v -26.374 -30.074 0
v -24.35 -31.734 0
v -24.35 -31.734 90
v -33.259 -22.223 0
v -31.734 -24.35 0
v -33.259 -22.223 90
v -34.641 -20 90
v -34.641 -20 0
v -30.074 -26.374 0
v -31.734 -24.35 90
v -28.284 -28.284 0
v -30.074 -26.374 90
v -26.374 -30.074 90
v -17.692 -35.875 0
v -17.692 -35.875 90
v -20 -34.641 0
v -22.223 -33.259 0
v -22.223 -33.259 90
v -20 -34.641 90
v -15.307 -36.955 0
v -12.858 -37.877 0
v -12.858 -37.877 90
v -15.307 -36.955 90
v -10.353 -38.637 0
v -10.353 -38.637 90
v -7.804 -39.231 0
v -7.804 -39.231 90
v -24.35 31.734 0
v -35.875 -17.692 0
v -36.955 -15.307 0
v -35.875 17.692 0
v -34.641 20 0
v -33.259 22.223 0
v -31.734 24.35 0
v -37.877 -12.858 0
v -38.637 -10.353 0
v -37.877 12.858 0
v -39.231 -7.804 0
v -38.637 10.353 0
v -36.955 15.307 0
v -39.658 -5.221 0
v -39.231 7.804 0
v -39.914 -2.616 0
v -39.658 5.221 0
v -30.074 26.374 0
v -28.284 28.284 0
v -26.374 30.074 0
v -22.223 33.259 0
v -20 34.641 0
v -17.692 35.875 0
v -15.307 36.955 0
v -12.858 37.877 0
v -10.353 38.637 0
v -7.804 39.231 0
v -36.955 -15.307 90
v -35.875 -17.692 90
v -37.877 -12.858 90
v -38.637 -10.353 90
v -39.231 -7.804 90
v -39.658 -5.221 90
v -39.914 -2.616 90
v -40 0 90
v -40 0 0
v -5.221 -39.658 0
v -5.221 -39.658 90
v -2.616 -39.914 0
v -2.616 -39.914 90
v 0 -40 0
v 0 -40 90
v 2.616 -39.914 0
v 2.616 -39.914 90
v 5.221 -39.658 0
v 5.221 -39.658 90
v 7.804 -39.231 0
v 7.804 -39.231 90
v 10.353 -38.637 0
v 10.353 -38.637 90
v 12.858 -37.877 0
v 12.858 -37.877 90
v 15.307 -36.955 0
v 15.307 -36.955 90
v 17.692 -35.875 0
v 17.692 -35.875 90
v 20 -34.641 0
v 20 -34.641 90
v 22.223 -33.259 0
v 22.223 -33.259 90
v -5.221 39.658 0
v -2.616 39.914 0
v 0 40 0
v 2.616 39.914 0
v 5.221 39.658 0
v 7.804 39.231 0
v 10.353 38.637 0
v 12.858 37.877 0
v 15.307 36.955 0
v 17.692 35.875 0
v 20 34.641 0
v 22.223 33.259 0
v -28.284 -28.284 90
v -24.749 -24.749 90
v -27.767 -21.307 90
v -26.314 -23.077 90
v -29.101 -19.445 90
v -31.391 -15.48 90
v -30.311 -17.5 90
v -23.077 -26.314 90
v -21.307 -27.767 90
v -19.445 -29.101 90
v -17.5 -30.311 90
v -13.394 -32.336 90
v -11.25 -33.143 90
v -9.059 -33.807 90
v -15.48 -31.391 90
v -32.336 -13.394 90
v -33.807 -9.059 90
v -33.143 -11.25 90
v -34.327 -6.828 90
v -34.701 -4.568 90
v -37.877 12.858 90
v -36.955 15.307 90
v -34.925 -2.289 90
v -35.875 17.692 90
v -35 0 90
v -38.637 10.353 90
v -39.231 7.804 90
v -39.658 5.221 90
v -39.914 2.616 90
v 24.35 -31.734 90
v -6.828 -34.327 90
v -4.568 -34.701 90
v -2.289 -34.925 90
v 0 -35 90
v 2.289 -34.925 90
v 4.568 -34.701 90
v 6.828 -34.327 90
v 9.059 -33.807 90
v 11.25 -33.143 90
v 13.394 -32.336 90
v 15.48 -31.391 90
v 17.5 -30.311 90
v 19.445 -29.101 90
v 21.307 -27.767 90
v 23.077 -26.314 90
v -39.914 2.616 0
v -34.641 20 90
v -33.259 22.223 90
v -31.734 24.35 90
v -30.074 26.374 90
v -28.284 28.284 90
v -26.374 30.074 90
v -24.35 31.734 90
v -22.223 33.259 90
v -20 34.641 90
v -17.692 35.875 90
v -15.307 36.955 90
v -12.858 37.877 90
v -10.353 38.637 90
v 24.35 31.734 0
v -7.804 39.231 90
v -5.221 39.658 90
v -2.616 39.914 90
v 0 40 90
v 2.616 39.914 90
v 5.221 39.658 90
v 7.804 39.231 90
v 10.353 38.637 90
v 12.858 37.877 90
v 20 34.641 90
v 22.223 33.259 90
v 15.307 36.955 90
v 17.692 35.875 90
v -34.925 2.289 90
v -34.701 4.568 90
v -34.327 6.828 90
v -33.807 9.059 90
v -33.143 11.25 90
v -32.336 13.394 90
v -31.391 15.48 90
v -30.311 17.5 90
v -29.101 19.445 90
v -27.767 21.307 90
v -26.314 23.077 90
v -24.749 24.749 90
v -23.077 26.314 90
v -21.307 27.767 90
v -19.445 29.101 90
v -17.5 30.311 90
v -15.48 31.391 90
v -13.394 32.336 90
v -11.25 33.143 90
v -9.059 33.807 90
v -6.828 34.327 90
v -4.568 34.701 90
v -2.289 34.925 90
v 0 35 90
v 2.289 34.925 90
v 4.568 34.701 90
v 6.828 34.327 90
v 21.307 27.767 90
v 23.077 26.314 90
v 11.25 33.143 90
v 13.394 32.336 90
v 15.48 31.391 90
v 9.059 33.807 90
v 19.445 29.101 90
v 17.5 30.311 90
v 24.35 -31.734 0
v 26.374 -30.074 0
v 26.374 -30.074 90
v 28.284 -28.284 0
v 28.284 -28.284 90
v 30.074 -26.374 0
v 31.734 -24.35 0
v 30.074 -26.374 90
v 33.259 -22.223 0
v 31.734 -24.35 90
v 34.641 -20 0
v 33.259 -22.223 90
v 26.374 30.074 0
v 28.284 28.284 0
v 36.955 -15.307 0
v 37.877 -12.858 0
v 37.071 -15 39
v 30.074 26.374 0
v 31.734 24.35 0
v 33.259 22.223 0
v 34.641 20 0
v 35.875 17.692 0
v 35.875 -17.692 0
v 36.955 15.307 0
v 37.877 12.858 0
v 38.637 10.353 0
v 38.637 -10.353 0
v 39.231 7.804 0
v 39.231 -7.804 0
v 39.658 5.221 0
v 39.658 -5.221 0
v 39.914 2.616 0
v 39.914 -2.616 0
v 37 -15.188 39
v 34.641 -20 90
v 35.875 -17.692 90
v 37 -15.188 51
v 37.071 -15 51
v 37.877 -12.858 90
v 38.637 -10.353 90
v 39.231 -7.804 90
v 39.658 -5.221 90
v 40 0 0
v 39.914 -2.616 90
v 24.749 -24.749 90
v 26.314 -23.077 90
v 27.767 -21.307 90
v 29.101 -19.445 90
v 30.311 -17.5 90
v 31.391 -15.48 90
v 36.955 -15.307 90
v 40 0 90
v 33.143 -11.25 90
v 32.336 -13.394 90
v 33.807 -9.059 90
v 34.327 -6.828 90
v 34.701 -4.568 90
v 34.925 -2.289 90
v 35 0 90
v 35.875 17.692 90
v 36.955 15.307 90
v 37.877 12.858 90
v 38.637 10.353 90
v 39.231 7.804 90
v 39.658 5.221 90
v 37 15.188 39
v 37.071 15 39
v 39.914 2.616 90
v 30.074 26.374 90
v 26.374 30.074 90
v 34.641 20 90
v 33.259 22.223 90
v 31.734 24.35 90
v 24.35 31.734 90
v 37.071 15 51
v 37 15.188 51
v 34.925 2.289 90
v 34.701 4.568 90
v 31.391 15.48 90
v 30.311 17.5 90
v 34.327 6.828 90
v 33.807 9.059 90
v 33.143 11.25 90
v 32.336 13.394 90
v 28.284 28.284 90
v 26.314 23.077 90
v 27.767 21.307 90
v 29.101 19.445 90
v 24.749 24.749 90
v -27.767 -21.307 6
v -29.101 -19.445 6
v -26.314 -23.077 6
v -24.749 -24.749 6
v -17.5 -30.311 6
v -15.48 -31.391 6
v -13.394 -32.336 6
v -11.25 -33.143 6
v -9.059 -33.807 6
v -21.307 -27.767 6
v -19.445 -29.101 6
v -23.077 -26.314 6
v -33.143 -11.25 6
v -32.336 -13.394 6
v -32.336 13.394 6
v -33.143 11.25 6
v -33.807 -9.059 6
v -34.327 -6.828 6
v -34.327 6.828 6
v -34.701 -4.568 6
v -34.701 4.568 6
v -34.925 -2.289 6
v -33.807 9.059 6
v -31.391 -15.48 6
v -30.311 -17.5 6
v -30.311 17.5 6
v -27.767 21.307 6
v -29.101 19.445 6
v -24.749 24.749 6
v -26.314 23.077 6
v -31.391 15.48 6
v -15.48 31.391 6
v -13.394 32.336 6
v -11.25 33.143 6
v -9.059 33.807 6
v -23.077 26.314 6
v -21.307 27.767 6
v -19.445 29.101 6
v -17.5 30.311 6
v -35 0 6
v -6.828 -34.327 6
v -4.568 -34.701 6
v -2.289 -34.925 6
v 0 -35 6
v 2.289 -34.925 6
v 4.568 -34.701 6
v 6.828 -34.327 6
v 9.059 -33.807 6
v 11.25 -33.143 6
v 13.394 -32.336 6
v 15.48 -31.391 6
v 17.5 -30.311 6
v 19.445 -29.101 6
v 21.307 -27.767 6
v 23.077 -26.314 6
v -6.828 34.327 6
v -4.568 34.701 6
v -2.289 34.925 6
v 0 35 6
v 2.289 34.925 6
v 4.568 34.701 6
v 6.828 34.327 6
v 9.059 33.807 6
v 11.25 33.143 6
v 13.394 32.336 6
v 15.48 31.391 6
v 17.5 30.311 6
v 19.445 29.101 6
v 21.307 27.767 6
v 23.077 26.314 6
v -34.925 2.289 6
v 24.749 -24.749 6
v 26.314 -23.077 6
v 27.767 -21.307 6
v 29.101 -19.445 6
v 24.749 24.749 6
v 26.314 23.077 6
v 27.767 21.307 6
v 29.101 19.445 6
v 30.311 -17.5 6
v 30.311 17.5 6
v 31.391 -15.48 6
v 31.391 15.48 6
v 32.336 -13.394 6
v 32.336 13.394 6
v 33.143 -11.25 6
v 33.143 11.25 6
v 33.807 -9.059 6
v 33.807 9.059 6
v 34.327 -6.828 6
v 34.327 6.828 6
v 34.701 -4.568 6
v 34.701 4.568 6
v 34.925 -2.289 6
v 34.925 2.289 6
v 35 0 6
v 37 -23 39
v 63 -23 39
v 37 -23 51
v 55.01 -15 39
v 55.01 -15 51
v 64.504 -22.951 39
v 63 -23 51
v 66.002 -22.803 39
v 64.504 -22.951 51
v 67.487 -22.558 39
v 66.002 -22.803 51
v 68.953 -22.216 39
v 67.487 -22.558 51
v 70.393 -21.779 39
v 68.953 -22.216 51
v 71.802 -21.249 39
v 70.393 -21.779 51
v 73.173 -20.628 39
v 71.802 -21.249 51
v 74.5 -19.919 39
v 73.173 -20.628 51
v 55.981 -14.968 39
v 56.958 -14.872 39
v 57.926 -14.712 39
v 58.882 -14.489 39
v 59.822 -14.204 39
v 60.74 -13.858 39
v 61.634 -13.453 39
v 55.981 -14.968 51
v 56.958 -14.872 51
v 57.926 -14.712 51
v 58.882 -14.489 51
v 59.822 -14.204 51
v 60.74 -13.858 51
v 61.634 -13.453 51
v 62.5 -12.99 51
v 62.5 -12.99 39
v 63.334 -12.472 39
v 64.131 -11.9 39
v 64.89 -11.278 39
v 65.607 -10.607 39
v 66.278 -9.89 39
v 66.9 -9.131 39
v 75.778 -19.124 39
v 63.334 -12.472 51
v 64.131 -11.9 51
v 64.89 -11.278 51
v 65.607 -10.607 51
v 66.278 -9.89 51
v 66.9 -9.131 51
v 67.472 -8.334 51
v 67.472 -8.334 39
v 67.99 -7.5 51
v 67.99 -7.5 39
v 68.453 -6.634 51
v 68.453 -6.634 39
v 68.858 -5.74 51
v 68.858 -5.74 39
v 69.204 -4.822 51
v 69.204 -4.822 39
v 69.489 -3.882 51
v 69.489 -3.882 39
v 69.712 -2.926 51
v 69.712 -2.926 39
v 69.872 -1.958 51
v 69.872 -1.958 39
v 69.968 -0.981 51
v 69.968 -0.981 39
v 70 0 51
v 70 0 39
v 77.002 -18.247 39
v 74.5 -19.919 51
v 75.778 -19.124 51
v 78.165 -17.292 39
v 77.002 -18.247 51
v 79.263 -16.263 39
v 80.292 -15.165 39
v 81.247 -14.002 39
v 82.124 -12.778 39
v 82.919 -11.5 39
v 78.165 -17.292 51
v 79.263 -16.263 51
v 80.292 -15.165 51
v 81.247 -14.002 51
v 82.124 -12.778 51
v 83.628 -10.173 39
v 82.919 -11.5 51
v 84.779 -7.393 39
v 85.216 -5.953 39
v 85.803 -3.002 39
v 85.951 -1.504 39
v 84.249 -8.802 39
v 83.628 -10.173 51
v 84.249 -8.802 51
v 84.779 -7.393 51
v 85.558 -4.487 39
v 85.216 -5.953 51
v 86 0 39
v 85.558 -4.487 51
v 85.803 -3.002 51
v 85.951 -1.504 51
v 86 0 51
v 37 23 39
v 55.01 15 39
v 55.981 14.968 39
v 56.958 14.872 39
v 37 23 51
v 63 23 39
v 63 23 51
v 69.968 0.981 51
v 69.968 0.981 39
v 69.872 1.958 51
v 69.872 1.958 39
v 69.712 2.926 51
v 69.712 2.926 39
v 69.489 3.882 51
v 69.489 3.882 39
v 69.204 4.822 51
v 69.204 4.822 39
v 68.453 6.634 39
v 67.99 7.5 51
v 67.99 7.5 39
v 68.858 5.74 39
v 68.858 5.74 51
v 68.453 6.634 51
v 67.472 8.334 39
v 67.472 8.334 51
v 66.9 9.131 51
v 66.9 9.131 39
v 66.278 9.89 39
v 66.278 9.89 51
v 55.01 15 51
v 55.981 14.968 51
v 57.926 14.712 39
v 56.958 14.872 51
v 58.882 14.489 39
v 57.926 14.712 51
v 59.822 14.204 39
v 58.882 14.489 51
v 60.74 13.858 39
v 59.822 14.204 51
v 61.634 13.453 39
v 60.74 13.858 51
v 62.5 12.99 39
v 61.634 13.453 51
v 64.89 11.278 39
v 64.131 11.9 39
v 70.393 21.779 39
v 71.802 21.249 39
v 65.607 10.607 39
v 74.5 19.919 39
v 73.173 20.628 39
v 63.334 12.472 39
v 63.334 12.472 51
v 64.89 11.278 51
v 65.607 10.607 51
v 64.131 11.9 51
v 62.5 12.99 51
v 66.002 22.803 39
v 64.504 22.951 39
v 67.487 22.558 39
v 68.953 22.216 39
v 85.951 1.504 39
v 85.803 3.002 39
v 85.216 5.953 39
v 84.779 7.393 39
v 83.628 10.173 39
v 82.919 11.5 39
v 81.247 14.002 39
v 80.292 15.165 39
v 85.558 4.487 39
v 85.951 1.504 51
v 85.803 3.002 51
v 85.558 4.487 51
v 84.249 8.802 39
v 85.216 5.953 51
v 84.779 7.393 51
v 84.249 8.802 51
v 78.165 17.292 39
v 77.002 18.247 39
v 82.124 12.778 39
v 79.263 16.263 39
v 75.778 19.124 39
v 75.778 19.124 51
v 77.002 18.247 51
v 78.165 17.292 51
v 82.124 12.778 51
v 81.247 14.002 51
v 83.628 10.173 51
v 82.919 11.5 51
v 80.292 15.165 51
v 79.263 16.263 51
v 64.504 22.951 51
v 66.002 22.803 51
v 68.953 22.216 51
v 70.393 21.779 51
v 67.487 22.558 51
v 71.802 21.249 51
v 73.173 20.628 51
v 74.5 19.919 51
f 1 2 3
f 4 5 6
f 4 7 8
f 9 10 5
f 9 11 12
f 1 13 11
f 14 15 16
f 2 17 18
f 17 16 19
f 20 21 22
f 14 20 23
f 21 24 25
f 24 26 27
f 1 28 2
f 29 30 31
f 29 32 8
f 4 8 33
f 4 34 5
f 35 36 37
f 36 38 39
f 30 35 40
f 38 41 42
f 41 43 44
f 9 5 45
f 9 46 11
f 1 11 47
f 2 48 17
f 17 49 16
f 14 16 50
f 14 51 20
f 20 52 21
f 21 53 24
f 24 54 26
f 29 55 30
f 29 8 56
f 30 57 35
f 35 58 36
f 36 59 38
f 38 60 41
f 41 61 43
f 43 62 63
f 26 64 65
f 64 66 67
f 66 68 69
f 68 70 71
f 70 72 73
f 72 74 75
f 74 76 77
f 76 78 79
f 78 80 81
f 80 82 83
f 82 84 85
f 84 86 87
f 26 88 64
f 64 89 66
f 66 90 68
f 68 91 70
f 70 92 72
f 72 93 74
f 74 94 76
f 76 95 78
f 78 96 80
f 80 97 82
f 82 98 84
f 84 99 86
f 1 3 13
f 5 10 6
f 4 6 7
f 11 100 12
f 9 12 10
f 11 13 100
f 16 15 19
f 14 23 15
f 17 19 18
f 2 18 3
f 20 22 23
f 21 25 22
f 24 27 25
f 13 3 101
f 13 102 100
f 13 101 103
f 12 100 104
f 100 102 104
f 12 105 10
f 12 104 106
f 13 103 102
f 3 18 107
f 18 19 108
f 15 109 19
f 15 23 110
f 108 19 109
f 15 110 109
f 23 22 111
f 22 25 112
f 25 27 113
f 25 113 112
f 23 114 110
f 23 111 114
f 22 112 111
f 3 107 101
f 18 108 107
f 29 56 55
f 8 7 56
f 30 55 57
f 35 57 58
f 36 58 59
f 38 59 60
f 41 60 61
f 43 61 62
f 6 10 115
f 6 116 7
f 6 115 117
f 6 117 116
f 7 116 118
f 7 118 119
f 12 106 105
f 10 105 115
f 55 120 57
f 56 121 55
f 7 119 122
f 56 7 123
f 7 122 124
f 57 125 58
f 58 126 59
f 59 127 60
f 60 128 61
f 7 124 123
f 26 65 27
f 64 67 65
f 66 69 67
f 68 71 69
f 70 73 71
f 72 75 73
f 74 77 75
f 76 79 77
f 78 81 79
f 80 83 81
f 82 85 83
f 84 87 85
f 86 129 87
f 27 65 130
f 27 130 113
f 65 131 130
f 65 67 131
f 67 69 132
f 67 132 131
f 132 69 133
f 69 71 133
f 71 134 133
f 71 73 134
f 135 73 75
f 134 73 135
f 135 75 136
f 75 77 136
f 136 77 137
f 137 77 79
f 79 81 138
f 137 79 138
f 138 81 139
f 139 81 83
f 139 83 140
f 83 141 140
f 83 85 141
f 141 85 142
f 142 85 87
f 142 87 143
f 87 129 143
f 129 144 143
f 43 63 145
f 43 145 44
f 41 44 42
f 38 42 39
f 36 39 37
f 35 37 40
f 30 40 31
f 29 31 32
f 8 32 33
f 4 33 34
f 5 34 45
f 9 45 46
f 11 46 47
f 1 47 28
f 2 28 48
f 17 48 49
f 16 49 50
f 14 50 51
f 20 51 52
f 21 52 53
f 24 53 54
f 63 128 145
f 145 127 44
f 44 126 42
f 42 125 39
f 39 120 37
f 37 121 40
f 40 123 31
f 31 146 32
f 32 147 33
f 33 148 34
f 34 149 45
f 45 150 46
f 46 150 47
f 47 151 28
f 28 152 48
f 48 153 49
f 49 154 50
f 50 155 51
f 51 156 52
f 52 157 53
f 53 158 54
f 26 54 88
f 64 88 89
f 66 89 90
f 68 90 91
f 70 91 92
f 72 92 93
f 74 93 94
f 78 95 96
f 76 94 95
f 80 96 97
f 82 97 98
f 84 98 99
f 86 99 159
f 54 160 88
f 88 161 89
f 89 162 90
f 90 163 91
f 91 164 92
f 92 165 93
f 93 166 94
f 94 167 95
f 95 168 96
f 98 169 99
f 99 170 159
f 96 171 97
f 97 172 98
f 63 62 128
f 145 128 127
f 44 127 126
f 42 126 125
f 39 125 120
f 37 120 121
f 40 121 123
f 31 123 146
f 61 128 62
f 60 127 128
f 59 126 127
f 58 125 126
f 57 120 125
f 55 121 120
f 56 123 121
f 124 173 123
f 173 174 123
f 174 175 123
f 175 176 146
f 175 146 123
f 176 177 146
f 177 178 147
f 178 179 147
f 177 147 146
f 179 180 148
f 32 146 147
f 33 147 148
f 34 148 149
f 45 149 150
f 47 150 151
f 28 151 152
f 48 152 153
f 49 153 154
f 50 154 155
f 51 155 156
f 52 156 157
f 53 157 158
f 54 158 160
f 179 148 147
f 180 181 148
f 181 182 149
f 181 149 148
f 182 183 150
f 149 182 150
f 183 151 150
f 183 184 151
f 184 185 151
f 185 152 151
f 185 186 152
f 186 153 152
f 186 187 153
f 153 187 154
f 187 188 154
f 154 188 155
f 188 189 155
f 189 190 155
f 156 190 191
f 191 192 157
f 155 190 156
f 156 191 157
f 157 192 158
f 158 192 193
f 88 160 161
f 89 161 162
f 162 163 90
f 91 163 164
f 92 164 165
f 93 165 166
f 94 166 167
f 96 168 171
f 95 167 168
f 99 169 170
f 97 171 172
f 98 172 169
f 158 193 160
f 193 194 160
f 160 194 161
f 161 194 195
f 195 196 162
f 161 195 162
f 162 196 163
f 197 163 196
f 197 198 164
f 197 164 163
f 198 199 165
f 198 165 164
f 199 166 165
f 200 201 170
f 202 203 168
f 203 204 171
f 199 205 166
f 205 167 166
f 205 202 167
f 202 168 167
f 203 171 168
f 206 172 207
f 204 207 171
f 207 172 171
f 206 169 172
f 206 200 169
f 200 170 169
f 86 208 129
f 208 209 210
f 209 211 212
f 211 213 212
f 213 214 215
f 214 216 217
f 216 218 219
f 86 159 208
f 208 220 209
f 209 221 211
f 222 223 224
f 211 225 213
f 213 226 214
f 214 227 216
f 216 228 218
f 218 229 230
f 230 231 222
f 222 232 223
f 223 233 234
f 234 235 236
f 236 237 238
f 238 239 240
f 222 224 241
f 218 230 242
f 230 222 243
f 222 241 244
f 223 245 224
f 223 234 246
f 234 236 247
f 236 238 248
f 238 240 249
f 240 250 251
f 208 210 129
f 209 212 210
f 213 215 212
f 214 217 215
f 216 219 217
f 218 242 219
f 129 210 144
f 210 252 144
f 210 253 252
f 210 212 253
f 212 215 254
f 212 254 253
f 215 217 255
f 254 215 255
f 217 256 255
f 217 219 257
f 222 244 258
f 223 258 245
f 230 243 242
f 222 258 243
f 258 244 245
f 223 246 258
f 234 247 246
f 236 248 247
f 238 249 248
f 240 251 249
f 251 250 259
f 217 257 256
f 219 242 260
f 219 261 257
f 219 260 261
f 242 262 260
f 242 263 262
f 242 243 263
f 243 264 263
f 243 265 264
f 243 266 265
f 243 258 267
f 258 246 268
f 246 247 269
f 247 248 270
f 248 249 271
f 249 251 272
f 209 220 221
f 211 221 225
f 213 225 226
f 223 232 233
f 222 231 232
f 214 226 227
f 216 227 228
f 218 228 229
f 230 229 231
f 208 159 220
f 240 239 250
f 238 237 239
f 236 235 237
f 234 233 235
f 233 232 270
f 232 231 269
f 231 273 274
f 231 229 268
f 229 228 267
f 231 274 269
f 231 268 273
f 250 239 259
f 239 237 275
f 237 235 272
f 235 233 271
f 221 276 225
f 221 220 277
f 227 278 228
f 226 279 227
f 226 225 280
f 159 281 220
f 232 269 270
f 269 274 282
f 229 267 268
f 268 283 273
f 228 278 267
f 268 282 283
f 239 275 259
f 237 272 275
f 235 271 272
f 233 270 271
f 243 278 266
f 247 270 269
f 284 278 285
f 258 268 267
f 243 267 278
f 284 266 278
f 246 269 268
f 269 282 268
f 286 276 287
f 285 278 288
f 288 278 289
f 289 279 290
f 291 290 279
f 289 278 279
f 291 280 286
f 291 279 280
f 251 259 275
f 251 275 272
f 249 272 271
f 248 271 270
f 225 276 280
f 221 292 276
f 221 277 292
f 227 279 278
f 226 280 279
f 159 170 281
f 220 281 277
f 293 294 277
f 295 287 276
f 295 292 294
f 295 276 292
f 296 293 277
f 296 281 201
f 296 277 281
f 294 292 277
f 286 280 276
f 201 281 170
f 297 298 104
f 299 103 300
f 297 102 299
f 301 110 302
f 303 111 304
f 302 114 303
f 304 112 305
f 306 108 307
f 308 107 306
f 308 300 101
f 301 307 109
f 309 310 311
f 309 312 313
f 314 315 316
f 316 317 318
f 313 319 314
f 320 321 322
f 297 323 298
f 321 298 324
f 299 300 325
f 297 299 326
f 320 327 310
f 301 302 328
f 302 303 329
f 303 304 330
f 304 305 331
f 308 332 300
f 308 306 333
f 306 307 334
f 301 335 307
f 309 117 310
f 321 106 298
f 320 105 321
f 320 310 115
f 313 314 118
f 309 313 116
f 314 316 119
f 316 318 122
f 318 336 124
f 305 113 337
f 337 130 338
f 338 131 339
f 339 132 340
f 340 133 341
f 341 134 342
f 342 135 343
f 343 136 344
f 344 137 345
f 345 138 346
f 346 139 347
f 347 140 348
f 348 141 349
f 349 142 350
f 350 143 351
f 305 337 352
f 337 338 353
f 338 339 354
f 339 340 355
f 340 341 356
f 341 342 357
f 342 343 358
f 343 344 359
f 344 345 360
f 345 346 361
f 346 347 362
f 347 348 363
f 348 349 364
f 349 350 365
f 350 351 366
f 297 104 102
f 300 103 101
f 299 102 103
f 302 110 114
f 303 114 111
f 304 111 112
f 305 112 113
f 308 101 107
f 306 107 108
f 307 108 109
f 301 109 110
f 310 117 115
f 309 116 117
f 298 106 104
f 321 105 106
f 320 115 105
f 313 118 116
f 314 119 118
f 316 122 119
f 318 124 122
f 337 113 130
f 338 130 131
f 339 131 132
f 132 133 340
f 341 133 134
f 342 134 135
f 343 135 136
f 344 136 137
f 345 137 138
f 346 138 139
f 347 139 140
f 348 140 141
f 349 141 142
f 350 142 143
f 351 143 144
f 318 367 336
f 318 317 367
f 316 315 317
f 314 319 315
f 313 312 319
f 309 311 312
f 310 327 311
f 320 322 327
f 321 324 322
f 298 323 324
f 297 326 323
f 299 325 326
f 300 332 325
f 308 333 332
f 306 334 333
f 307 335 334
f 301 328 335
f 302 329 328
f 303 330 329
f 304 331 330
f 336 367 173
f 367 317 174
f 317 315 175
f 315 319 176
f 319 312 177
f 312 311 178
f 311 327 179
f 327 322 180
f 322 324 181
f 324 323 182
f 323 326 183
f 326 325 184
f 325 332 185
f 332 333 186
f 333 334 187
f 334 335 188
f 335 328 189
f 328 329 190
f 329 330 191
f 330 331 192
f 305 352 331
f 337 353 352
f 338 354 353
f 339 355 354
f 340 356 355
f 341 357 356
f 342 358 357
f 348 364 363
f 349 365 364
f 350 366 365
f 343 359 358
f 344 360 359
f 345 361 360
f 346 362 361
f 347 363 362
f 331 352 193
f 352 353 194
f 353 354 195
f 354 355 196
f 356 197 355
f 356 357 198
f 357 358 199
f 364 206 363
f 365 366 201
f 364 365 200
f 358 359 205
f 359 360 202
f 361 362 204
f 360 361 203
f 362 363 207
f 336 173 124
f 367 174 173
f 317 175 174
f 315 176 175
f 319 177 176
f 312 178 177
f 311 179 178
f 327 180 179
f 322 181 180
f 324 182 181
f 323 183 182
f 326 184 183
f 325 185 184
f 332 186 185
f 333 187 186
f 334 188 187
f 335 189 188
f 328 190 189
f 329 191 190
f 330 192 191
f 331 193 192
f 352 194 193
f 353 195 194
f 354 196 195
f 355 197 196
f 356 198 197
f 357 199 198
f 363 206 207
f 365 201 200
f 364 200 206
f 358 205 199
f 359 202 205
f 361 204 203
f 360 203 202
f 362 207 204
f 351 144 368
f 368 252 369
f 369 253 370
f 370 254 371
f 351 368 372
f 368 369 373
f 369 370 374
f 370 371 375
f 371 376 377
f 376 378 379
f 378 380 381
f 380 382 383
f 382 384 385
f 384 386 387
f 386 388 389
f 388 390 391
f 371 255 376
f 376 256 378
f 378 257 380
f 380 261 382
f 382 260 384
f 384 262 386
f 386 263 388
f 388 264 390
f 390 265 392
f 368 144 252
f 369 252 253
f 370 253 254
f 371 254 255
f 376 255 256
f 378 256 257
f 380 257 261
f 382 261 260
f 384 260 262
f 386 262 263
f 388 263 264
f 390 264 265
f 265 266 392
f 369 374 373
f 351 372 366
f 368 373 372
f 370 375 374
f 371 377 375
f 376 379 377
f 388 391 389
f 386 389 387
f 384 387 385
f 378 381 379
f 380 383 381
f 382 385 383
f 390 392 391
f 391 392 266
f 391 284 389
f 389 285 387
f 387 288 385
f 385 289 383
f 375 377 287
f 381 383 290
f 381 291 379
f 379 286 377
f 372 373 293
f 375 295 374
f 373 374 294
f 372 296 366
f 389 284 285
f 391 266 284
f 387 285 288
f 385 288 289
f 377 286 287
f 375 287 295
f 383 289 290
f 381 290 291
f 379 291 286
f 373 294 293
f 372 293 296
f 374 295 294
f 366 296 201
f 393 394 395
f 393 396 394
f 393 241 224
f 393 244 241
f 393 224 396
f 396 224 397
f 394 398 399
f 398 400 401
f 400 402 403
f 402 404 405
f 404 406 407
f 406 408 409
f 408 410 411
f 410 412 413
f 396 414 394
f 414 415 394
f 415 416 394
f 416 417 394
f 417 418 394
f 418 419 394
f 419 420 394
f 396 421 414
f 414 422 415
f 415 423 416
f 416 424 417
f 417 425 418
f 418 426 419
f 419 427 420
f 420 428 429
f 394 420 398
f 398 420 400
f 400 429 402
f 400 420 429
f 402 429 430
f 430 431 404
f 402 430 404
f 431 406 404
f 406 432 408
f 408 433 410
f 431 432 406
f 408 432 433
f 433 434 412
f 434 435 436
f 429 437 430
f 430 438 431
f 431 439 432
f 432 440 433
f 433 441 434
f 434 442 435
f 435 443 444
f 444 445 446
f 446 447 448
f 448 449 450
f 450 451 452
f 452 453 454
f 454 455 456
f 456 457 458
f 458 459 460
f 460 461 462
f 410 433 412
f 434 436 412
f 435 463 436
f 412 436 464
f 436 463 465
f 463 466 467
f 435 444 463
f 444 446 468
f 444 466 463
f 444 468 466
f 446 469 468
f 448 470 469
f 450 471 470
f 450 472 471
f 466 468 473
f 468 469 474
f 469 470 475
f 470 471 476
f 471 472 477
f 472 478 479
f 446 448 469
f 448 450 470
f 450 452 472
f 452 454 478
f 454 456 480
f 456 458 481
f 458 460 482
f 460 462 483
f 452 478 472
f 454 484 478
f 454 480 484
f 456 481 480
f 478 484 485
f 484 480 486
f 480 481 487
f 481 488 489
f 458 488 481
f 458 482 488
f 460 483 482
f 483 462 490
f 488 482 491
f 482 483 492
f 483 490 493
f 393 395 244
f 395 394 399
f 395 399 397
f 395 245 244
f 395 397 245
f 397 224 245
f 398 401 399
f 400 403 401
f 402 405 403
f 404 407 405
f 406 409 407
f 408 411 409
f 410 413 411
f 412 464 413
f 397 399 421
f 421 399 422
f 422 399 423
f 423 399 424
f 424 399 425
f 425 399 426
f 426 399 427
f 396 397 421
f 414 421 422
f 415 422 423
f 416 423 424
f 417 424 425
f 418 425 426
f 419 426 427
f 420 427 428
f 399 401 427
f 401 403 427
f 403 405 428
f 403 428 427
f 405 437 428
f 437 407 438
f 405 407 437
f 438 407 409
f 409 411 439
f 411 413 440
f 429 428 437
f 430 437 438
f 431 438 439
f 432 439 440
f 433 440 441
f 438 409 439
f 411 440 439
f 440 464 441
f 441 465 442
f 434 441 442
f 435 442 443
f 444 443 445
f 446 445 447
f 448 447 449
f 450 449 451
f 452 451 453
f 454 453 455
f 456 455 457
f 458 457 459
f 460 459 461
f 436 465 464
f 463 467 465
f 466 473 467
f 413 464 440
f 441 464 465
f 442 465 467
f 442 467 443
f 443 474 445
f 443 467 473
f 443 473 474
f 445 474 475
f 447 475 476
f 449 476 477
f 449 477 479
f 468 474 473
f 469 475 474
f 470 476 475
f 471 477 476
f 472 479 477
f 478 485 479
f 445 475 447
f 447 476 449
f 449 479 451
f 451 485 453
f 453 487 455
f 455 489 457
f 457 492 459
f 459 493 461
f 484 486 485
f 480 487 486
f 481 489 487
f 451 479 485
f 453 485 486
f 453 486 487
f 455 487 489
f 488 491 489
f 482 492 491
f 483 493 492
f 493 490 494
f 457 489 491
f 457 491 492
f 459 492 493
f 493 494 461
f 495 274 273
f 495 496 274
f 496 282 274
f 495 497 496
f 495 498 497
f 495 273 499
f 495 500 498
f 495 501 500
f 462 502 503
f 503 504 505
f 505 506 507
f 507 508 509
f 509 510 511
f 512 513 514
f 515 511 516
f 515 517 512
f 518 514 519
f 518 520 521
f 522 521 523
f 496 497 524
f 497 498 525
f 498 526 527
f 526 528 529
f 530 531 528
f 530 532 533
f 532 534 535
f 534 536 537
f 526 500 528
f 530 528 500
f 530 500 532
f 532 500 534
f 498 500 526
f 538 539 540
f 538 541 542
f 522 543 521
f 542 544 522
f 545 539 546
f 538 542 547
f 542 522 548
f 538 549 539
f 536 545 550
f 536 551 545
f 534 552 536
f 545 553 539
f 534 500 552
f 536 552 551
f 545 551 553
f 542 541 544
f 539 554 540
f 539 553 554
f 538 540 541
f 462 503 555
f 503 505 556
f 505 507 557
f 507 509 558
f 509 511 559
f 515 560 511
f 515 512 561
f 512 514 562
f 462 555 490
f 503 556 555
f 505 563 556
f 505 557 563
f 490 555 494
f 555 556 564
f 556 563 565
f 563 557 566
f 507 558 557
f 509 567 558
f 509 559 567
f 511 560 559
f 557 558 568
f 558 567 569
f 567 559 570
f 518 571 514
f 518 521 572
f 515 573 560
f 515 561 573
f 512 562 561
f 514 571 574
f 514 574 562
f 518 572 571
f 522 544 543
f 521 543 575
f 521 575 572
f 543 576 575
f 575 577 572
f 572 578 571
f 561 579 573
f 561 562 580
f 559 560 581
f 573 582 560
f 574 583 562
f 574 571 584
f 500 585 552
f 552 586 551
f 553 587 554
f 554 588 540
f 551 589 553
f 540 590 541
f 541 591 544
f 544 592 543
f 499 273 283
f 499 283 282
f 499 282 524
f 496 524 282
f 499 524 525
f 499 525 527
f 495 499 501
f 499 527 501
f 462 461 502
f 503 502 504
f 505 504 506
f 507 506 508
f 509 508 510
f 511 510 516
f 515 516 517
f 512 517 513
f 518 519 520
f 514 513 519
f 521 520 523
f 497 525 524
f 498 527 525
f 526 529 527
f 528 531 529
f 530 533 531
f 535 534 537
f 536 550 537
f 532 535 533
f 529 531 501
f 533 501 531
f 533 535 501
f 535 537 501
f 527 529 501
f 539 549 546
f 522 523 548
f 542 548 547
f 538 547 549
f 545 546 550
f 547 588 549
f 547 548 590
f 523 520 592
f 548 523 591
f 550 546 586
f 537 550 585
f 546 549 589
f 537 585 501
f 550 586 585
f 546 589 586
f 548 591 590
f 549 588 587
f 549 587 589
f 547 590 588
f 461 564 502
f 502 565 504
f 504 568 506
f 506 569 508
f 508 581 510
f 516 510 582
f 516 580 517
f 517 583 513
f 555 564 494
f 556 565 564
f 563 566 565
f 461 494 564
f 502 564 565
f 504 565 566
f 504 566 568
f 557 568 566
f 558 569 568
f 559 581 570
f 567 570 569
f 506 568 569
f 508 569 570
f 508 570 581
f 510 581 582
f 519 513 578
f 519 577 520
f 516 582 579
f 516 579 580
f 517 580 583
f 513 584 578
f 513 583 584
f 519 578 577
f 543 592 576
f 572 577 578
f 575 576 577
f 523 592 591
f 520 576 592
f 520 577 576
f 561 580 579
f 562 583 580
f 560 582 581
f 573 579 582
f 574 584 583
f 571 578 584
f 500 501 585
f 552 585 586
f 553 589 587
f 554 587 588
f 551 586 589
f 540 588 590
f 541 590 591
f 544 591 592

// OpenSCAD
// マグカップ パラメータ
outer_d = 80;      // 外径
inner_d = 70;      // 内径
mug_h   = 90;      // 高さ
bottom_t = 6;      // 底厚

// 取手パラメータ
handle_inner_h = 30; // 取手内側の空間 高さ
handle_inner_w = 25; // 取手内側の空間 幅(径方向)
handle_thick   = 8;  // 取手の太さ(円管の直径方向の太さ)
handle_depth   = 12; // 取手のZ軸に垂直な厚み(押し出し方向)

$fn = 96;

module mug_body() {
    difference() {
        cylinder(d = outer_d, h = mug_h);
        translate([0, 0, bottom_t])
            cylinder(d = inner_d, h = mug_h - bottom_t + 1);
    }
}

module handle_2d() {
    // 外側半径と内側半径
    r_outer = handle_inner_w/2 + handle_thick + handle_inner_h/2 - handle_inner_w/2;
    // シンプルに: 外側半円の半径 = 内側高さ/2 + 太さ
    // ここでは内側形状を 高さ handle_inner_h × 幅 handle_inner_w の角丸長方形にする方針ではなく
    // D字形状にするため、以下のように構築する
    
    // 外側 D 形状(半円 + 直線):
    // 半円の半径 = handle_inner_h/2 + handle_thick
    R = handle_inner_h/2 + handle_thick;
    // 取手全体の幅(径方向) = handle_inner_w + handle_thick (本体側は本体に埋め込む)
    
    difference() {
        // 外形:本体接続部(矩形)+ 半円 で D 字
        union() {
            // 本体側の矩形部分(本体外周から外側へ伸びる接続部)
            // x: 0 ~ handle_inner_w
            translate([-1, -R])
                square([handle_inner_w + 1, 2*R]);
            // 外側半円
            translate([handle_inner_w, 0])
                circle(r = R);
        }
        // 内側のくり抜き(指が入る空間)
        union() {
            translate([-1, -handle_inner_h/2])
                square([handle_inner_w - handle_thick + 1 + 0.01, handle_inner_h]);
            translate([handle_inner_w - handle_thick, 0])
                circle(r = handle_inner_h/2);
        }
    }
}

module handle() {
    // +X 方向に取手を配置
    // 本体外周(x = outer_d/2)に接続するため、取手の起点を内側に少し食い込ませる
    overlap = 2;
    translate([outer_d/2 - overlap, 0, mug_h/2 - handle_depth/2])
        rotate([0, 0, 0])
            linear_extrude(height = handle_depth)
                handle_2d();
}

// 本体と取手をunion、内側くり抜きは本体側で完結しているのでそのままunionでOK
union() {
    mug_body();
    handle();
}
